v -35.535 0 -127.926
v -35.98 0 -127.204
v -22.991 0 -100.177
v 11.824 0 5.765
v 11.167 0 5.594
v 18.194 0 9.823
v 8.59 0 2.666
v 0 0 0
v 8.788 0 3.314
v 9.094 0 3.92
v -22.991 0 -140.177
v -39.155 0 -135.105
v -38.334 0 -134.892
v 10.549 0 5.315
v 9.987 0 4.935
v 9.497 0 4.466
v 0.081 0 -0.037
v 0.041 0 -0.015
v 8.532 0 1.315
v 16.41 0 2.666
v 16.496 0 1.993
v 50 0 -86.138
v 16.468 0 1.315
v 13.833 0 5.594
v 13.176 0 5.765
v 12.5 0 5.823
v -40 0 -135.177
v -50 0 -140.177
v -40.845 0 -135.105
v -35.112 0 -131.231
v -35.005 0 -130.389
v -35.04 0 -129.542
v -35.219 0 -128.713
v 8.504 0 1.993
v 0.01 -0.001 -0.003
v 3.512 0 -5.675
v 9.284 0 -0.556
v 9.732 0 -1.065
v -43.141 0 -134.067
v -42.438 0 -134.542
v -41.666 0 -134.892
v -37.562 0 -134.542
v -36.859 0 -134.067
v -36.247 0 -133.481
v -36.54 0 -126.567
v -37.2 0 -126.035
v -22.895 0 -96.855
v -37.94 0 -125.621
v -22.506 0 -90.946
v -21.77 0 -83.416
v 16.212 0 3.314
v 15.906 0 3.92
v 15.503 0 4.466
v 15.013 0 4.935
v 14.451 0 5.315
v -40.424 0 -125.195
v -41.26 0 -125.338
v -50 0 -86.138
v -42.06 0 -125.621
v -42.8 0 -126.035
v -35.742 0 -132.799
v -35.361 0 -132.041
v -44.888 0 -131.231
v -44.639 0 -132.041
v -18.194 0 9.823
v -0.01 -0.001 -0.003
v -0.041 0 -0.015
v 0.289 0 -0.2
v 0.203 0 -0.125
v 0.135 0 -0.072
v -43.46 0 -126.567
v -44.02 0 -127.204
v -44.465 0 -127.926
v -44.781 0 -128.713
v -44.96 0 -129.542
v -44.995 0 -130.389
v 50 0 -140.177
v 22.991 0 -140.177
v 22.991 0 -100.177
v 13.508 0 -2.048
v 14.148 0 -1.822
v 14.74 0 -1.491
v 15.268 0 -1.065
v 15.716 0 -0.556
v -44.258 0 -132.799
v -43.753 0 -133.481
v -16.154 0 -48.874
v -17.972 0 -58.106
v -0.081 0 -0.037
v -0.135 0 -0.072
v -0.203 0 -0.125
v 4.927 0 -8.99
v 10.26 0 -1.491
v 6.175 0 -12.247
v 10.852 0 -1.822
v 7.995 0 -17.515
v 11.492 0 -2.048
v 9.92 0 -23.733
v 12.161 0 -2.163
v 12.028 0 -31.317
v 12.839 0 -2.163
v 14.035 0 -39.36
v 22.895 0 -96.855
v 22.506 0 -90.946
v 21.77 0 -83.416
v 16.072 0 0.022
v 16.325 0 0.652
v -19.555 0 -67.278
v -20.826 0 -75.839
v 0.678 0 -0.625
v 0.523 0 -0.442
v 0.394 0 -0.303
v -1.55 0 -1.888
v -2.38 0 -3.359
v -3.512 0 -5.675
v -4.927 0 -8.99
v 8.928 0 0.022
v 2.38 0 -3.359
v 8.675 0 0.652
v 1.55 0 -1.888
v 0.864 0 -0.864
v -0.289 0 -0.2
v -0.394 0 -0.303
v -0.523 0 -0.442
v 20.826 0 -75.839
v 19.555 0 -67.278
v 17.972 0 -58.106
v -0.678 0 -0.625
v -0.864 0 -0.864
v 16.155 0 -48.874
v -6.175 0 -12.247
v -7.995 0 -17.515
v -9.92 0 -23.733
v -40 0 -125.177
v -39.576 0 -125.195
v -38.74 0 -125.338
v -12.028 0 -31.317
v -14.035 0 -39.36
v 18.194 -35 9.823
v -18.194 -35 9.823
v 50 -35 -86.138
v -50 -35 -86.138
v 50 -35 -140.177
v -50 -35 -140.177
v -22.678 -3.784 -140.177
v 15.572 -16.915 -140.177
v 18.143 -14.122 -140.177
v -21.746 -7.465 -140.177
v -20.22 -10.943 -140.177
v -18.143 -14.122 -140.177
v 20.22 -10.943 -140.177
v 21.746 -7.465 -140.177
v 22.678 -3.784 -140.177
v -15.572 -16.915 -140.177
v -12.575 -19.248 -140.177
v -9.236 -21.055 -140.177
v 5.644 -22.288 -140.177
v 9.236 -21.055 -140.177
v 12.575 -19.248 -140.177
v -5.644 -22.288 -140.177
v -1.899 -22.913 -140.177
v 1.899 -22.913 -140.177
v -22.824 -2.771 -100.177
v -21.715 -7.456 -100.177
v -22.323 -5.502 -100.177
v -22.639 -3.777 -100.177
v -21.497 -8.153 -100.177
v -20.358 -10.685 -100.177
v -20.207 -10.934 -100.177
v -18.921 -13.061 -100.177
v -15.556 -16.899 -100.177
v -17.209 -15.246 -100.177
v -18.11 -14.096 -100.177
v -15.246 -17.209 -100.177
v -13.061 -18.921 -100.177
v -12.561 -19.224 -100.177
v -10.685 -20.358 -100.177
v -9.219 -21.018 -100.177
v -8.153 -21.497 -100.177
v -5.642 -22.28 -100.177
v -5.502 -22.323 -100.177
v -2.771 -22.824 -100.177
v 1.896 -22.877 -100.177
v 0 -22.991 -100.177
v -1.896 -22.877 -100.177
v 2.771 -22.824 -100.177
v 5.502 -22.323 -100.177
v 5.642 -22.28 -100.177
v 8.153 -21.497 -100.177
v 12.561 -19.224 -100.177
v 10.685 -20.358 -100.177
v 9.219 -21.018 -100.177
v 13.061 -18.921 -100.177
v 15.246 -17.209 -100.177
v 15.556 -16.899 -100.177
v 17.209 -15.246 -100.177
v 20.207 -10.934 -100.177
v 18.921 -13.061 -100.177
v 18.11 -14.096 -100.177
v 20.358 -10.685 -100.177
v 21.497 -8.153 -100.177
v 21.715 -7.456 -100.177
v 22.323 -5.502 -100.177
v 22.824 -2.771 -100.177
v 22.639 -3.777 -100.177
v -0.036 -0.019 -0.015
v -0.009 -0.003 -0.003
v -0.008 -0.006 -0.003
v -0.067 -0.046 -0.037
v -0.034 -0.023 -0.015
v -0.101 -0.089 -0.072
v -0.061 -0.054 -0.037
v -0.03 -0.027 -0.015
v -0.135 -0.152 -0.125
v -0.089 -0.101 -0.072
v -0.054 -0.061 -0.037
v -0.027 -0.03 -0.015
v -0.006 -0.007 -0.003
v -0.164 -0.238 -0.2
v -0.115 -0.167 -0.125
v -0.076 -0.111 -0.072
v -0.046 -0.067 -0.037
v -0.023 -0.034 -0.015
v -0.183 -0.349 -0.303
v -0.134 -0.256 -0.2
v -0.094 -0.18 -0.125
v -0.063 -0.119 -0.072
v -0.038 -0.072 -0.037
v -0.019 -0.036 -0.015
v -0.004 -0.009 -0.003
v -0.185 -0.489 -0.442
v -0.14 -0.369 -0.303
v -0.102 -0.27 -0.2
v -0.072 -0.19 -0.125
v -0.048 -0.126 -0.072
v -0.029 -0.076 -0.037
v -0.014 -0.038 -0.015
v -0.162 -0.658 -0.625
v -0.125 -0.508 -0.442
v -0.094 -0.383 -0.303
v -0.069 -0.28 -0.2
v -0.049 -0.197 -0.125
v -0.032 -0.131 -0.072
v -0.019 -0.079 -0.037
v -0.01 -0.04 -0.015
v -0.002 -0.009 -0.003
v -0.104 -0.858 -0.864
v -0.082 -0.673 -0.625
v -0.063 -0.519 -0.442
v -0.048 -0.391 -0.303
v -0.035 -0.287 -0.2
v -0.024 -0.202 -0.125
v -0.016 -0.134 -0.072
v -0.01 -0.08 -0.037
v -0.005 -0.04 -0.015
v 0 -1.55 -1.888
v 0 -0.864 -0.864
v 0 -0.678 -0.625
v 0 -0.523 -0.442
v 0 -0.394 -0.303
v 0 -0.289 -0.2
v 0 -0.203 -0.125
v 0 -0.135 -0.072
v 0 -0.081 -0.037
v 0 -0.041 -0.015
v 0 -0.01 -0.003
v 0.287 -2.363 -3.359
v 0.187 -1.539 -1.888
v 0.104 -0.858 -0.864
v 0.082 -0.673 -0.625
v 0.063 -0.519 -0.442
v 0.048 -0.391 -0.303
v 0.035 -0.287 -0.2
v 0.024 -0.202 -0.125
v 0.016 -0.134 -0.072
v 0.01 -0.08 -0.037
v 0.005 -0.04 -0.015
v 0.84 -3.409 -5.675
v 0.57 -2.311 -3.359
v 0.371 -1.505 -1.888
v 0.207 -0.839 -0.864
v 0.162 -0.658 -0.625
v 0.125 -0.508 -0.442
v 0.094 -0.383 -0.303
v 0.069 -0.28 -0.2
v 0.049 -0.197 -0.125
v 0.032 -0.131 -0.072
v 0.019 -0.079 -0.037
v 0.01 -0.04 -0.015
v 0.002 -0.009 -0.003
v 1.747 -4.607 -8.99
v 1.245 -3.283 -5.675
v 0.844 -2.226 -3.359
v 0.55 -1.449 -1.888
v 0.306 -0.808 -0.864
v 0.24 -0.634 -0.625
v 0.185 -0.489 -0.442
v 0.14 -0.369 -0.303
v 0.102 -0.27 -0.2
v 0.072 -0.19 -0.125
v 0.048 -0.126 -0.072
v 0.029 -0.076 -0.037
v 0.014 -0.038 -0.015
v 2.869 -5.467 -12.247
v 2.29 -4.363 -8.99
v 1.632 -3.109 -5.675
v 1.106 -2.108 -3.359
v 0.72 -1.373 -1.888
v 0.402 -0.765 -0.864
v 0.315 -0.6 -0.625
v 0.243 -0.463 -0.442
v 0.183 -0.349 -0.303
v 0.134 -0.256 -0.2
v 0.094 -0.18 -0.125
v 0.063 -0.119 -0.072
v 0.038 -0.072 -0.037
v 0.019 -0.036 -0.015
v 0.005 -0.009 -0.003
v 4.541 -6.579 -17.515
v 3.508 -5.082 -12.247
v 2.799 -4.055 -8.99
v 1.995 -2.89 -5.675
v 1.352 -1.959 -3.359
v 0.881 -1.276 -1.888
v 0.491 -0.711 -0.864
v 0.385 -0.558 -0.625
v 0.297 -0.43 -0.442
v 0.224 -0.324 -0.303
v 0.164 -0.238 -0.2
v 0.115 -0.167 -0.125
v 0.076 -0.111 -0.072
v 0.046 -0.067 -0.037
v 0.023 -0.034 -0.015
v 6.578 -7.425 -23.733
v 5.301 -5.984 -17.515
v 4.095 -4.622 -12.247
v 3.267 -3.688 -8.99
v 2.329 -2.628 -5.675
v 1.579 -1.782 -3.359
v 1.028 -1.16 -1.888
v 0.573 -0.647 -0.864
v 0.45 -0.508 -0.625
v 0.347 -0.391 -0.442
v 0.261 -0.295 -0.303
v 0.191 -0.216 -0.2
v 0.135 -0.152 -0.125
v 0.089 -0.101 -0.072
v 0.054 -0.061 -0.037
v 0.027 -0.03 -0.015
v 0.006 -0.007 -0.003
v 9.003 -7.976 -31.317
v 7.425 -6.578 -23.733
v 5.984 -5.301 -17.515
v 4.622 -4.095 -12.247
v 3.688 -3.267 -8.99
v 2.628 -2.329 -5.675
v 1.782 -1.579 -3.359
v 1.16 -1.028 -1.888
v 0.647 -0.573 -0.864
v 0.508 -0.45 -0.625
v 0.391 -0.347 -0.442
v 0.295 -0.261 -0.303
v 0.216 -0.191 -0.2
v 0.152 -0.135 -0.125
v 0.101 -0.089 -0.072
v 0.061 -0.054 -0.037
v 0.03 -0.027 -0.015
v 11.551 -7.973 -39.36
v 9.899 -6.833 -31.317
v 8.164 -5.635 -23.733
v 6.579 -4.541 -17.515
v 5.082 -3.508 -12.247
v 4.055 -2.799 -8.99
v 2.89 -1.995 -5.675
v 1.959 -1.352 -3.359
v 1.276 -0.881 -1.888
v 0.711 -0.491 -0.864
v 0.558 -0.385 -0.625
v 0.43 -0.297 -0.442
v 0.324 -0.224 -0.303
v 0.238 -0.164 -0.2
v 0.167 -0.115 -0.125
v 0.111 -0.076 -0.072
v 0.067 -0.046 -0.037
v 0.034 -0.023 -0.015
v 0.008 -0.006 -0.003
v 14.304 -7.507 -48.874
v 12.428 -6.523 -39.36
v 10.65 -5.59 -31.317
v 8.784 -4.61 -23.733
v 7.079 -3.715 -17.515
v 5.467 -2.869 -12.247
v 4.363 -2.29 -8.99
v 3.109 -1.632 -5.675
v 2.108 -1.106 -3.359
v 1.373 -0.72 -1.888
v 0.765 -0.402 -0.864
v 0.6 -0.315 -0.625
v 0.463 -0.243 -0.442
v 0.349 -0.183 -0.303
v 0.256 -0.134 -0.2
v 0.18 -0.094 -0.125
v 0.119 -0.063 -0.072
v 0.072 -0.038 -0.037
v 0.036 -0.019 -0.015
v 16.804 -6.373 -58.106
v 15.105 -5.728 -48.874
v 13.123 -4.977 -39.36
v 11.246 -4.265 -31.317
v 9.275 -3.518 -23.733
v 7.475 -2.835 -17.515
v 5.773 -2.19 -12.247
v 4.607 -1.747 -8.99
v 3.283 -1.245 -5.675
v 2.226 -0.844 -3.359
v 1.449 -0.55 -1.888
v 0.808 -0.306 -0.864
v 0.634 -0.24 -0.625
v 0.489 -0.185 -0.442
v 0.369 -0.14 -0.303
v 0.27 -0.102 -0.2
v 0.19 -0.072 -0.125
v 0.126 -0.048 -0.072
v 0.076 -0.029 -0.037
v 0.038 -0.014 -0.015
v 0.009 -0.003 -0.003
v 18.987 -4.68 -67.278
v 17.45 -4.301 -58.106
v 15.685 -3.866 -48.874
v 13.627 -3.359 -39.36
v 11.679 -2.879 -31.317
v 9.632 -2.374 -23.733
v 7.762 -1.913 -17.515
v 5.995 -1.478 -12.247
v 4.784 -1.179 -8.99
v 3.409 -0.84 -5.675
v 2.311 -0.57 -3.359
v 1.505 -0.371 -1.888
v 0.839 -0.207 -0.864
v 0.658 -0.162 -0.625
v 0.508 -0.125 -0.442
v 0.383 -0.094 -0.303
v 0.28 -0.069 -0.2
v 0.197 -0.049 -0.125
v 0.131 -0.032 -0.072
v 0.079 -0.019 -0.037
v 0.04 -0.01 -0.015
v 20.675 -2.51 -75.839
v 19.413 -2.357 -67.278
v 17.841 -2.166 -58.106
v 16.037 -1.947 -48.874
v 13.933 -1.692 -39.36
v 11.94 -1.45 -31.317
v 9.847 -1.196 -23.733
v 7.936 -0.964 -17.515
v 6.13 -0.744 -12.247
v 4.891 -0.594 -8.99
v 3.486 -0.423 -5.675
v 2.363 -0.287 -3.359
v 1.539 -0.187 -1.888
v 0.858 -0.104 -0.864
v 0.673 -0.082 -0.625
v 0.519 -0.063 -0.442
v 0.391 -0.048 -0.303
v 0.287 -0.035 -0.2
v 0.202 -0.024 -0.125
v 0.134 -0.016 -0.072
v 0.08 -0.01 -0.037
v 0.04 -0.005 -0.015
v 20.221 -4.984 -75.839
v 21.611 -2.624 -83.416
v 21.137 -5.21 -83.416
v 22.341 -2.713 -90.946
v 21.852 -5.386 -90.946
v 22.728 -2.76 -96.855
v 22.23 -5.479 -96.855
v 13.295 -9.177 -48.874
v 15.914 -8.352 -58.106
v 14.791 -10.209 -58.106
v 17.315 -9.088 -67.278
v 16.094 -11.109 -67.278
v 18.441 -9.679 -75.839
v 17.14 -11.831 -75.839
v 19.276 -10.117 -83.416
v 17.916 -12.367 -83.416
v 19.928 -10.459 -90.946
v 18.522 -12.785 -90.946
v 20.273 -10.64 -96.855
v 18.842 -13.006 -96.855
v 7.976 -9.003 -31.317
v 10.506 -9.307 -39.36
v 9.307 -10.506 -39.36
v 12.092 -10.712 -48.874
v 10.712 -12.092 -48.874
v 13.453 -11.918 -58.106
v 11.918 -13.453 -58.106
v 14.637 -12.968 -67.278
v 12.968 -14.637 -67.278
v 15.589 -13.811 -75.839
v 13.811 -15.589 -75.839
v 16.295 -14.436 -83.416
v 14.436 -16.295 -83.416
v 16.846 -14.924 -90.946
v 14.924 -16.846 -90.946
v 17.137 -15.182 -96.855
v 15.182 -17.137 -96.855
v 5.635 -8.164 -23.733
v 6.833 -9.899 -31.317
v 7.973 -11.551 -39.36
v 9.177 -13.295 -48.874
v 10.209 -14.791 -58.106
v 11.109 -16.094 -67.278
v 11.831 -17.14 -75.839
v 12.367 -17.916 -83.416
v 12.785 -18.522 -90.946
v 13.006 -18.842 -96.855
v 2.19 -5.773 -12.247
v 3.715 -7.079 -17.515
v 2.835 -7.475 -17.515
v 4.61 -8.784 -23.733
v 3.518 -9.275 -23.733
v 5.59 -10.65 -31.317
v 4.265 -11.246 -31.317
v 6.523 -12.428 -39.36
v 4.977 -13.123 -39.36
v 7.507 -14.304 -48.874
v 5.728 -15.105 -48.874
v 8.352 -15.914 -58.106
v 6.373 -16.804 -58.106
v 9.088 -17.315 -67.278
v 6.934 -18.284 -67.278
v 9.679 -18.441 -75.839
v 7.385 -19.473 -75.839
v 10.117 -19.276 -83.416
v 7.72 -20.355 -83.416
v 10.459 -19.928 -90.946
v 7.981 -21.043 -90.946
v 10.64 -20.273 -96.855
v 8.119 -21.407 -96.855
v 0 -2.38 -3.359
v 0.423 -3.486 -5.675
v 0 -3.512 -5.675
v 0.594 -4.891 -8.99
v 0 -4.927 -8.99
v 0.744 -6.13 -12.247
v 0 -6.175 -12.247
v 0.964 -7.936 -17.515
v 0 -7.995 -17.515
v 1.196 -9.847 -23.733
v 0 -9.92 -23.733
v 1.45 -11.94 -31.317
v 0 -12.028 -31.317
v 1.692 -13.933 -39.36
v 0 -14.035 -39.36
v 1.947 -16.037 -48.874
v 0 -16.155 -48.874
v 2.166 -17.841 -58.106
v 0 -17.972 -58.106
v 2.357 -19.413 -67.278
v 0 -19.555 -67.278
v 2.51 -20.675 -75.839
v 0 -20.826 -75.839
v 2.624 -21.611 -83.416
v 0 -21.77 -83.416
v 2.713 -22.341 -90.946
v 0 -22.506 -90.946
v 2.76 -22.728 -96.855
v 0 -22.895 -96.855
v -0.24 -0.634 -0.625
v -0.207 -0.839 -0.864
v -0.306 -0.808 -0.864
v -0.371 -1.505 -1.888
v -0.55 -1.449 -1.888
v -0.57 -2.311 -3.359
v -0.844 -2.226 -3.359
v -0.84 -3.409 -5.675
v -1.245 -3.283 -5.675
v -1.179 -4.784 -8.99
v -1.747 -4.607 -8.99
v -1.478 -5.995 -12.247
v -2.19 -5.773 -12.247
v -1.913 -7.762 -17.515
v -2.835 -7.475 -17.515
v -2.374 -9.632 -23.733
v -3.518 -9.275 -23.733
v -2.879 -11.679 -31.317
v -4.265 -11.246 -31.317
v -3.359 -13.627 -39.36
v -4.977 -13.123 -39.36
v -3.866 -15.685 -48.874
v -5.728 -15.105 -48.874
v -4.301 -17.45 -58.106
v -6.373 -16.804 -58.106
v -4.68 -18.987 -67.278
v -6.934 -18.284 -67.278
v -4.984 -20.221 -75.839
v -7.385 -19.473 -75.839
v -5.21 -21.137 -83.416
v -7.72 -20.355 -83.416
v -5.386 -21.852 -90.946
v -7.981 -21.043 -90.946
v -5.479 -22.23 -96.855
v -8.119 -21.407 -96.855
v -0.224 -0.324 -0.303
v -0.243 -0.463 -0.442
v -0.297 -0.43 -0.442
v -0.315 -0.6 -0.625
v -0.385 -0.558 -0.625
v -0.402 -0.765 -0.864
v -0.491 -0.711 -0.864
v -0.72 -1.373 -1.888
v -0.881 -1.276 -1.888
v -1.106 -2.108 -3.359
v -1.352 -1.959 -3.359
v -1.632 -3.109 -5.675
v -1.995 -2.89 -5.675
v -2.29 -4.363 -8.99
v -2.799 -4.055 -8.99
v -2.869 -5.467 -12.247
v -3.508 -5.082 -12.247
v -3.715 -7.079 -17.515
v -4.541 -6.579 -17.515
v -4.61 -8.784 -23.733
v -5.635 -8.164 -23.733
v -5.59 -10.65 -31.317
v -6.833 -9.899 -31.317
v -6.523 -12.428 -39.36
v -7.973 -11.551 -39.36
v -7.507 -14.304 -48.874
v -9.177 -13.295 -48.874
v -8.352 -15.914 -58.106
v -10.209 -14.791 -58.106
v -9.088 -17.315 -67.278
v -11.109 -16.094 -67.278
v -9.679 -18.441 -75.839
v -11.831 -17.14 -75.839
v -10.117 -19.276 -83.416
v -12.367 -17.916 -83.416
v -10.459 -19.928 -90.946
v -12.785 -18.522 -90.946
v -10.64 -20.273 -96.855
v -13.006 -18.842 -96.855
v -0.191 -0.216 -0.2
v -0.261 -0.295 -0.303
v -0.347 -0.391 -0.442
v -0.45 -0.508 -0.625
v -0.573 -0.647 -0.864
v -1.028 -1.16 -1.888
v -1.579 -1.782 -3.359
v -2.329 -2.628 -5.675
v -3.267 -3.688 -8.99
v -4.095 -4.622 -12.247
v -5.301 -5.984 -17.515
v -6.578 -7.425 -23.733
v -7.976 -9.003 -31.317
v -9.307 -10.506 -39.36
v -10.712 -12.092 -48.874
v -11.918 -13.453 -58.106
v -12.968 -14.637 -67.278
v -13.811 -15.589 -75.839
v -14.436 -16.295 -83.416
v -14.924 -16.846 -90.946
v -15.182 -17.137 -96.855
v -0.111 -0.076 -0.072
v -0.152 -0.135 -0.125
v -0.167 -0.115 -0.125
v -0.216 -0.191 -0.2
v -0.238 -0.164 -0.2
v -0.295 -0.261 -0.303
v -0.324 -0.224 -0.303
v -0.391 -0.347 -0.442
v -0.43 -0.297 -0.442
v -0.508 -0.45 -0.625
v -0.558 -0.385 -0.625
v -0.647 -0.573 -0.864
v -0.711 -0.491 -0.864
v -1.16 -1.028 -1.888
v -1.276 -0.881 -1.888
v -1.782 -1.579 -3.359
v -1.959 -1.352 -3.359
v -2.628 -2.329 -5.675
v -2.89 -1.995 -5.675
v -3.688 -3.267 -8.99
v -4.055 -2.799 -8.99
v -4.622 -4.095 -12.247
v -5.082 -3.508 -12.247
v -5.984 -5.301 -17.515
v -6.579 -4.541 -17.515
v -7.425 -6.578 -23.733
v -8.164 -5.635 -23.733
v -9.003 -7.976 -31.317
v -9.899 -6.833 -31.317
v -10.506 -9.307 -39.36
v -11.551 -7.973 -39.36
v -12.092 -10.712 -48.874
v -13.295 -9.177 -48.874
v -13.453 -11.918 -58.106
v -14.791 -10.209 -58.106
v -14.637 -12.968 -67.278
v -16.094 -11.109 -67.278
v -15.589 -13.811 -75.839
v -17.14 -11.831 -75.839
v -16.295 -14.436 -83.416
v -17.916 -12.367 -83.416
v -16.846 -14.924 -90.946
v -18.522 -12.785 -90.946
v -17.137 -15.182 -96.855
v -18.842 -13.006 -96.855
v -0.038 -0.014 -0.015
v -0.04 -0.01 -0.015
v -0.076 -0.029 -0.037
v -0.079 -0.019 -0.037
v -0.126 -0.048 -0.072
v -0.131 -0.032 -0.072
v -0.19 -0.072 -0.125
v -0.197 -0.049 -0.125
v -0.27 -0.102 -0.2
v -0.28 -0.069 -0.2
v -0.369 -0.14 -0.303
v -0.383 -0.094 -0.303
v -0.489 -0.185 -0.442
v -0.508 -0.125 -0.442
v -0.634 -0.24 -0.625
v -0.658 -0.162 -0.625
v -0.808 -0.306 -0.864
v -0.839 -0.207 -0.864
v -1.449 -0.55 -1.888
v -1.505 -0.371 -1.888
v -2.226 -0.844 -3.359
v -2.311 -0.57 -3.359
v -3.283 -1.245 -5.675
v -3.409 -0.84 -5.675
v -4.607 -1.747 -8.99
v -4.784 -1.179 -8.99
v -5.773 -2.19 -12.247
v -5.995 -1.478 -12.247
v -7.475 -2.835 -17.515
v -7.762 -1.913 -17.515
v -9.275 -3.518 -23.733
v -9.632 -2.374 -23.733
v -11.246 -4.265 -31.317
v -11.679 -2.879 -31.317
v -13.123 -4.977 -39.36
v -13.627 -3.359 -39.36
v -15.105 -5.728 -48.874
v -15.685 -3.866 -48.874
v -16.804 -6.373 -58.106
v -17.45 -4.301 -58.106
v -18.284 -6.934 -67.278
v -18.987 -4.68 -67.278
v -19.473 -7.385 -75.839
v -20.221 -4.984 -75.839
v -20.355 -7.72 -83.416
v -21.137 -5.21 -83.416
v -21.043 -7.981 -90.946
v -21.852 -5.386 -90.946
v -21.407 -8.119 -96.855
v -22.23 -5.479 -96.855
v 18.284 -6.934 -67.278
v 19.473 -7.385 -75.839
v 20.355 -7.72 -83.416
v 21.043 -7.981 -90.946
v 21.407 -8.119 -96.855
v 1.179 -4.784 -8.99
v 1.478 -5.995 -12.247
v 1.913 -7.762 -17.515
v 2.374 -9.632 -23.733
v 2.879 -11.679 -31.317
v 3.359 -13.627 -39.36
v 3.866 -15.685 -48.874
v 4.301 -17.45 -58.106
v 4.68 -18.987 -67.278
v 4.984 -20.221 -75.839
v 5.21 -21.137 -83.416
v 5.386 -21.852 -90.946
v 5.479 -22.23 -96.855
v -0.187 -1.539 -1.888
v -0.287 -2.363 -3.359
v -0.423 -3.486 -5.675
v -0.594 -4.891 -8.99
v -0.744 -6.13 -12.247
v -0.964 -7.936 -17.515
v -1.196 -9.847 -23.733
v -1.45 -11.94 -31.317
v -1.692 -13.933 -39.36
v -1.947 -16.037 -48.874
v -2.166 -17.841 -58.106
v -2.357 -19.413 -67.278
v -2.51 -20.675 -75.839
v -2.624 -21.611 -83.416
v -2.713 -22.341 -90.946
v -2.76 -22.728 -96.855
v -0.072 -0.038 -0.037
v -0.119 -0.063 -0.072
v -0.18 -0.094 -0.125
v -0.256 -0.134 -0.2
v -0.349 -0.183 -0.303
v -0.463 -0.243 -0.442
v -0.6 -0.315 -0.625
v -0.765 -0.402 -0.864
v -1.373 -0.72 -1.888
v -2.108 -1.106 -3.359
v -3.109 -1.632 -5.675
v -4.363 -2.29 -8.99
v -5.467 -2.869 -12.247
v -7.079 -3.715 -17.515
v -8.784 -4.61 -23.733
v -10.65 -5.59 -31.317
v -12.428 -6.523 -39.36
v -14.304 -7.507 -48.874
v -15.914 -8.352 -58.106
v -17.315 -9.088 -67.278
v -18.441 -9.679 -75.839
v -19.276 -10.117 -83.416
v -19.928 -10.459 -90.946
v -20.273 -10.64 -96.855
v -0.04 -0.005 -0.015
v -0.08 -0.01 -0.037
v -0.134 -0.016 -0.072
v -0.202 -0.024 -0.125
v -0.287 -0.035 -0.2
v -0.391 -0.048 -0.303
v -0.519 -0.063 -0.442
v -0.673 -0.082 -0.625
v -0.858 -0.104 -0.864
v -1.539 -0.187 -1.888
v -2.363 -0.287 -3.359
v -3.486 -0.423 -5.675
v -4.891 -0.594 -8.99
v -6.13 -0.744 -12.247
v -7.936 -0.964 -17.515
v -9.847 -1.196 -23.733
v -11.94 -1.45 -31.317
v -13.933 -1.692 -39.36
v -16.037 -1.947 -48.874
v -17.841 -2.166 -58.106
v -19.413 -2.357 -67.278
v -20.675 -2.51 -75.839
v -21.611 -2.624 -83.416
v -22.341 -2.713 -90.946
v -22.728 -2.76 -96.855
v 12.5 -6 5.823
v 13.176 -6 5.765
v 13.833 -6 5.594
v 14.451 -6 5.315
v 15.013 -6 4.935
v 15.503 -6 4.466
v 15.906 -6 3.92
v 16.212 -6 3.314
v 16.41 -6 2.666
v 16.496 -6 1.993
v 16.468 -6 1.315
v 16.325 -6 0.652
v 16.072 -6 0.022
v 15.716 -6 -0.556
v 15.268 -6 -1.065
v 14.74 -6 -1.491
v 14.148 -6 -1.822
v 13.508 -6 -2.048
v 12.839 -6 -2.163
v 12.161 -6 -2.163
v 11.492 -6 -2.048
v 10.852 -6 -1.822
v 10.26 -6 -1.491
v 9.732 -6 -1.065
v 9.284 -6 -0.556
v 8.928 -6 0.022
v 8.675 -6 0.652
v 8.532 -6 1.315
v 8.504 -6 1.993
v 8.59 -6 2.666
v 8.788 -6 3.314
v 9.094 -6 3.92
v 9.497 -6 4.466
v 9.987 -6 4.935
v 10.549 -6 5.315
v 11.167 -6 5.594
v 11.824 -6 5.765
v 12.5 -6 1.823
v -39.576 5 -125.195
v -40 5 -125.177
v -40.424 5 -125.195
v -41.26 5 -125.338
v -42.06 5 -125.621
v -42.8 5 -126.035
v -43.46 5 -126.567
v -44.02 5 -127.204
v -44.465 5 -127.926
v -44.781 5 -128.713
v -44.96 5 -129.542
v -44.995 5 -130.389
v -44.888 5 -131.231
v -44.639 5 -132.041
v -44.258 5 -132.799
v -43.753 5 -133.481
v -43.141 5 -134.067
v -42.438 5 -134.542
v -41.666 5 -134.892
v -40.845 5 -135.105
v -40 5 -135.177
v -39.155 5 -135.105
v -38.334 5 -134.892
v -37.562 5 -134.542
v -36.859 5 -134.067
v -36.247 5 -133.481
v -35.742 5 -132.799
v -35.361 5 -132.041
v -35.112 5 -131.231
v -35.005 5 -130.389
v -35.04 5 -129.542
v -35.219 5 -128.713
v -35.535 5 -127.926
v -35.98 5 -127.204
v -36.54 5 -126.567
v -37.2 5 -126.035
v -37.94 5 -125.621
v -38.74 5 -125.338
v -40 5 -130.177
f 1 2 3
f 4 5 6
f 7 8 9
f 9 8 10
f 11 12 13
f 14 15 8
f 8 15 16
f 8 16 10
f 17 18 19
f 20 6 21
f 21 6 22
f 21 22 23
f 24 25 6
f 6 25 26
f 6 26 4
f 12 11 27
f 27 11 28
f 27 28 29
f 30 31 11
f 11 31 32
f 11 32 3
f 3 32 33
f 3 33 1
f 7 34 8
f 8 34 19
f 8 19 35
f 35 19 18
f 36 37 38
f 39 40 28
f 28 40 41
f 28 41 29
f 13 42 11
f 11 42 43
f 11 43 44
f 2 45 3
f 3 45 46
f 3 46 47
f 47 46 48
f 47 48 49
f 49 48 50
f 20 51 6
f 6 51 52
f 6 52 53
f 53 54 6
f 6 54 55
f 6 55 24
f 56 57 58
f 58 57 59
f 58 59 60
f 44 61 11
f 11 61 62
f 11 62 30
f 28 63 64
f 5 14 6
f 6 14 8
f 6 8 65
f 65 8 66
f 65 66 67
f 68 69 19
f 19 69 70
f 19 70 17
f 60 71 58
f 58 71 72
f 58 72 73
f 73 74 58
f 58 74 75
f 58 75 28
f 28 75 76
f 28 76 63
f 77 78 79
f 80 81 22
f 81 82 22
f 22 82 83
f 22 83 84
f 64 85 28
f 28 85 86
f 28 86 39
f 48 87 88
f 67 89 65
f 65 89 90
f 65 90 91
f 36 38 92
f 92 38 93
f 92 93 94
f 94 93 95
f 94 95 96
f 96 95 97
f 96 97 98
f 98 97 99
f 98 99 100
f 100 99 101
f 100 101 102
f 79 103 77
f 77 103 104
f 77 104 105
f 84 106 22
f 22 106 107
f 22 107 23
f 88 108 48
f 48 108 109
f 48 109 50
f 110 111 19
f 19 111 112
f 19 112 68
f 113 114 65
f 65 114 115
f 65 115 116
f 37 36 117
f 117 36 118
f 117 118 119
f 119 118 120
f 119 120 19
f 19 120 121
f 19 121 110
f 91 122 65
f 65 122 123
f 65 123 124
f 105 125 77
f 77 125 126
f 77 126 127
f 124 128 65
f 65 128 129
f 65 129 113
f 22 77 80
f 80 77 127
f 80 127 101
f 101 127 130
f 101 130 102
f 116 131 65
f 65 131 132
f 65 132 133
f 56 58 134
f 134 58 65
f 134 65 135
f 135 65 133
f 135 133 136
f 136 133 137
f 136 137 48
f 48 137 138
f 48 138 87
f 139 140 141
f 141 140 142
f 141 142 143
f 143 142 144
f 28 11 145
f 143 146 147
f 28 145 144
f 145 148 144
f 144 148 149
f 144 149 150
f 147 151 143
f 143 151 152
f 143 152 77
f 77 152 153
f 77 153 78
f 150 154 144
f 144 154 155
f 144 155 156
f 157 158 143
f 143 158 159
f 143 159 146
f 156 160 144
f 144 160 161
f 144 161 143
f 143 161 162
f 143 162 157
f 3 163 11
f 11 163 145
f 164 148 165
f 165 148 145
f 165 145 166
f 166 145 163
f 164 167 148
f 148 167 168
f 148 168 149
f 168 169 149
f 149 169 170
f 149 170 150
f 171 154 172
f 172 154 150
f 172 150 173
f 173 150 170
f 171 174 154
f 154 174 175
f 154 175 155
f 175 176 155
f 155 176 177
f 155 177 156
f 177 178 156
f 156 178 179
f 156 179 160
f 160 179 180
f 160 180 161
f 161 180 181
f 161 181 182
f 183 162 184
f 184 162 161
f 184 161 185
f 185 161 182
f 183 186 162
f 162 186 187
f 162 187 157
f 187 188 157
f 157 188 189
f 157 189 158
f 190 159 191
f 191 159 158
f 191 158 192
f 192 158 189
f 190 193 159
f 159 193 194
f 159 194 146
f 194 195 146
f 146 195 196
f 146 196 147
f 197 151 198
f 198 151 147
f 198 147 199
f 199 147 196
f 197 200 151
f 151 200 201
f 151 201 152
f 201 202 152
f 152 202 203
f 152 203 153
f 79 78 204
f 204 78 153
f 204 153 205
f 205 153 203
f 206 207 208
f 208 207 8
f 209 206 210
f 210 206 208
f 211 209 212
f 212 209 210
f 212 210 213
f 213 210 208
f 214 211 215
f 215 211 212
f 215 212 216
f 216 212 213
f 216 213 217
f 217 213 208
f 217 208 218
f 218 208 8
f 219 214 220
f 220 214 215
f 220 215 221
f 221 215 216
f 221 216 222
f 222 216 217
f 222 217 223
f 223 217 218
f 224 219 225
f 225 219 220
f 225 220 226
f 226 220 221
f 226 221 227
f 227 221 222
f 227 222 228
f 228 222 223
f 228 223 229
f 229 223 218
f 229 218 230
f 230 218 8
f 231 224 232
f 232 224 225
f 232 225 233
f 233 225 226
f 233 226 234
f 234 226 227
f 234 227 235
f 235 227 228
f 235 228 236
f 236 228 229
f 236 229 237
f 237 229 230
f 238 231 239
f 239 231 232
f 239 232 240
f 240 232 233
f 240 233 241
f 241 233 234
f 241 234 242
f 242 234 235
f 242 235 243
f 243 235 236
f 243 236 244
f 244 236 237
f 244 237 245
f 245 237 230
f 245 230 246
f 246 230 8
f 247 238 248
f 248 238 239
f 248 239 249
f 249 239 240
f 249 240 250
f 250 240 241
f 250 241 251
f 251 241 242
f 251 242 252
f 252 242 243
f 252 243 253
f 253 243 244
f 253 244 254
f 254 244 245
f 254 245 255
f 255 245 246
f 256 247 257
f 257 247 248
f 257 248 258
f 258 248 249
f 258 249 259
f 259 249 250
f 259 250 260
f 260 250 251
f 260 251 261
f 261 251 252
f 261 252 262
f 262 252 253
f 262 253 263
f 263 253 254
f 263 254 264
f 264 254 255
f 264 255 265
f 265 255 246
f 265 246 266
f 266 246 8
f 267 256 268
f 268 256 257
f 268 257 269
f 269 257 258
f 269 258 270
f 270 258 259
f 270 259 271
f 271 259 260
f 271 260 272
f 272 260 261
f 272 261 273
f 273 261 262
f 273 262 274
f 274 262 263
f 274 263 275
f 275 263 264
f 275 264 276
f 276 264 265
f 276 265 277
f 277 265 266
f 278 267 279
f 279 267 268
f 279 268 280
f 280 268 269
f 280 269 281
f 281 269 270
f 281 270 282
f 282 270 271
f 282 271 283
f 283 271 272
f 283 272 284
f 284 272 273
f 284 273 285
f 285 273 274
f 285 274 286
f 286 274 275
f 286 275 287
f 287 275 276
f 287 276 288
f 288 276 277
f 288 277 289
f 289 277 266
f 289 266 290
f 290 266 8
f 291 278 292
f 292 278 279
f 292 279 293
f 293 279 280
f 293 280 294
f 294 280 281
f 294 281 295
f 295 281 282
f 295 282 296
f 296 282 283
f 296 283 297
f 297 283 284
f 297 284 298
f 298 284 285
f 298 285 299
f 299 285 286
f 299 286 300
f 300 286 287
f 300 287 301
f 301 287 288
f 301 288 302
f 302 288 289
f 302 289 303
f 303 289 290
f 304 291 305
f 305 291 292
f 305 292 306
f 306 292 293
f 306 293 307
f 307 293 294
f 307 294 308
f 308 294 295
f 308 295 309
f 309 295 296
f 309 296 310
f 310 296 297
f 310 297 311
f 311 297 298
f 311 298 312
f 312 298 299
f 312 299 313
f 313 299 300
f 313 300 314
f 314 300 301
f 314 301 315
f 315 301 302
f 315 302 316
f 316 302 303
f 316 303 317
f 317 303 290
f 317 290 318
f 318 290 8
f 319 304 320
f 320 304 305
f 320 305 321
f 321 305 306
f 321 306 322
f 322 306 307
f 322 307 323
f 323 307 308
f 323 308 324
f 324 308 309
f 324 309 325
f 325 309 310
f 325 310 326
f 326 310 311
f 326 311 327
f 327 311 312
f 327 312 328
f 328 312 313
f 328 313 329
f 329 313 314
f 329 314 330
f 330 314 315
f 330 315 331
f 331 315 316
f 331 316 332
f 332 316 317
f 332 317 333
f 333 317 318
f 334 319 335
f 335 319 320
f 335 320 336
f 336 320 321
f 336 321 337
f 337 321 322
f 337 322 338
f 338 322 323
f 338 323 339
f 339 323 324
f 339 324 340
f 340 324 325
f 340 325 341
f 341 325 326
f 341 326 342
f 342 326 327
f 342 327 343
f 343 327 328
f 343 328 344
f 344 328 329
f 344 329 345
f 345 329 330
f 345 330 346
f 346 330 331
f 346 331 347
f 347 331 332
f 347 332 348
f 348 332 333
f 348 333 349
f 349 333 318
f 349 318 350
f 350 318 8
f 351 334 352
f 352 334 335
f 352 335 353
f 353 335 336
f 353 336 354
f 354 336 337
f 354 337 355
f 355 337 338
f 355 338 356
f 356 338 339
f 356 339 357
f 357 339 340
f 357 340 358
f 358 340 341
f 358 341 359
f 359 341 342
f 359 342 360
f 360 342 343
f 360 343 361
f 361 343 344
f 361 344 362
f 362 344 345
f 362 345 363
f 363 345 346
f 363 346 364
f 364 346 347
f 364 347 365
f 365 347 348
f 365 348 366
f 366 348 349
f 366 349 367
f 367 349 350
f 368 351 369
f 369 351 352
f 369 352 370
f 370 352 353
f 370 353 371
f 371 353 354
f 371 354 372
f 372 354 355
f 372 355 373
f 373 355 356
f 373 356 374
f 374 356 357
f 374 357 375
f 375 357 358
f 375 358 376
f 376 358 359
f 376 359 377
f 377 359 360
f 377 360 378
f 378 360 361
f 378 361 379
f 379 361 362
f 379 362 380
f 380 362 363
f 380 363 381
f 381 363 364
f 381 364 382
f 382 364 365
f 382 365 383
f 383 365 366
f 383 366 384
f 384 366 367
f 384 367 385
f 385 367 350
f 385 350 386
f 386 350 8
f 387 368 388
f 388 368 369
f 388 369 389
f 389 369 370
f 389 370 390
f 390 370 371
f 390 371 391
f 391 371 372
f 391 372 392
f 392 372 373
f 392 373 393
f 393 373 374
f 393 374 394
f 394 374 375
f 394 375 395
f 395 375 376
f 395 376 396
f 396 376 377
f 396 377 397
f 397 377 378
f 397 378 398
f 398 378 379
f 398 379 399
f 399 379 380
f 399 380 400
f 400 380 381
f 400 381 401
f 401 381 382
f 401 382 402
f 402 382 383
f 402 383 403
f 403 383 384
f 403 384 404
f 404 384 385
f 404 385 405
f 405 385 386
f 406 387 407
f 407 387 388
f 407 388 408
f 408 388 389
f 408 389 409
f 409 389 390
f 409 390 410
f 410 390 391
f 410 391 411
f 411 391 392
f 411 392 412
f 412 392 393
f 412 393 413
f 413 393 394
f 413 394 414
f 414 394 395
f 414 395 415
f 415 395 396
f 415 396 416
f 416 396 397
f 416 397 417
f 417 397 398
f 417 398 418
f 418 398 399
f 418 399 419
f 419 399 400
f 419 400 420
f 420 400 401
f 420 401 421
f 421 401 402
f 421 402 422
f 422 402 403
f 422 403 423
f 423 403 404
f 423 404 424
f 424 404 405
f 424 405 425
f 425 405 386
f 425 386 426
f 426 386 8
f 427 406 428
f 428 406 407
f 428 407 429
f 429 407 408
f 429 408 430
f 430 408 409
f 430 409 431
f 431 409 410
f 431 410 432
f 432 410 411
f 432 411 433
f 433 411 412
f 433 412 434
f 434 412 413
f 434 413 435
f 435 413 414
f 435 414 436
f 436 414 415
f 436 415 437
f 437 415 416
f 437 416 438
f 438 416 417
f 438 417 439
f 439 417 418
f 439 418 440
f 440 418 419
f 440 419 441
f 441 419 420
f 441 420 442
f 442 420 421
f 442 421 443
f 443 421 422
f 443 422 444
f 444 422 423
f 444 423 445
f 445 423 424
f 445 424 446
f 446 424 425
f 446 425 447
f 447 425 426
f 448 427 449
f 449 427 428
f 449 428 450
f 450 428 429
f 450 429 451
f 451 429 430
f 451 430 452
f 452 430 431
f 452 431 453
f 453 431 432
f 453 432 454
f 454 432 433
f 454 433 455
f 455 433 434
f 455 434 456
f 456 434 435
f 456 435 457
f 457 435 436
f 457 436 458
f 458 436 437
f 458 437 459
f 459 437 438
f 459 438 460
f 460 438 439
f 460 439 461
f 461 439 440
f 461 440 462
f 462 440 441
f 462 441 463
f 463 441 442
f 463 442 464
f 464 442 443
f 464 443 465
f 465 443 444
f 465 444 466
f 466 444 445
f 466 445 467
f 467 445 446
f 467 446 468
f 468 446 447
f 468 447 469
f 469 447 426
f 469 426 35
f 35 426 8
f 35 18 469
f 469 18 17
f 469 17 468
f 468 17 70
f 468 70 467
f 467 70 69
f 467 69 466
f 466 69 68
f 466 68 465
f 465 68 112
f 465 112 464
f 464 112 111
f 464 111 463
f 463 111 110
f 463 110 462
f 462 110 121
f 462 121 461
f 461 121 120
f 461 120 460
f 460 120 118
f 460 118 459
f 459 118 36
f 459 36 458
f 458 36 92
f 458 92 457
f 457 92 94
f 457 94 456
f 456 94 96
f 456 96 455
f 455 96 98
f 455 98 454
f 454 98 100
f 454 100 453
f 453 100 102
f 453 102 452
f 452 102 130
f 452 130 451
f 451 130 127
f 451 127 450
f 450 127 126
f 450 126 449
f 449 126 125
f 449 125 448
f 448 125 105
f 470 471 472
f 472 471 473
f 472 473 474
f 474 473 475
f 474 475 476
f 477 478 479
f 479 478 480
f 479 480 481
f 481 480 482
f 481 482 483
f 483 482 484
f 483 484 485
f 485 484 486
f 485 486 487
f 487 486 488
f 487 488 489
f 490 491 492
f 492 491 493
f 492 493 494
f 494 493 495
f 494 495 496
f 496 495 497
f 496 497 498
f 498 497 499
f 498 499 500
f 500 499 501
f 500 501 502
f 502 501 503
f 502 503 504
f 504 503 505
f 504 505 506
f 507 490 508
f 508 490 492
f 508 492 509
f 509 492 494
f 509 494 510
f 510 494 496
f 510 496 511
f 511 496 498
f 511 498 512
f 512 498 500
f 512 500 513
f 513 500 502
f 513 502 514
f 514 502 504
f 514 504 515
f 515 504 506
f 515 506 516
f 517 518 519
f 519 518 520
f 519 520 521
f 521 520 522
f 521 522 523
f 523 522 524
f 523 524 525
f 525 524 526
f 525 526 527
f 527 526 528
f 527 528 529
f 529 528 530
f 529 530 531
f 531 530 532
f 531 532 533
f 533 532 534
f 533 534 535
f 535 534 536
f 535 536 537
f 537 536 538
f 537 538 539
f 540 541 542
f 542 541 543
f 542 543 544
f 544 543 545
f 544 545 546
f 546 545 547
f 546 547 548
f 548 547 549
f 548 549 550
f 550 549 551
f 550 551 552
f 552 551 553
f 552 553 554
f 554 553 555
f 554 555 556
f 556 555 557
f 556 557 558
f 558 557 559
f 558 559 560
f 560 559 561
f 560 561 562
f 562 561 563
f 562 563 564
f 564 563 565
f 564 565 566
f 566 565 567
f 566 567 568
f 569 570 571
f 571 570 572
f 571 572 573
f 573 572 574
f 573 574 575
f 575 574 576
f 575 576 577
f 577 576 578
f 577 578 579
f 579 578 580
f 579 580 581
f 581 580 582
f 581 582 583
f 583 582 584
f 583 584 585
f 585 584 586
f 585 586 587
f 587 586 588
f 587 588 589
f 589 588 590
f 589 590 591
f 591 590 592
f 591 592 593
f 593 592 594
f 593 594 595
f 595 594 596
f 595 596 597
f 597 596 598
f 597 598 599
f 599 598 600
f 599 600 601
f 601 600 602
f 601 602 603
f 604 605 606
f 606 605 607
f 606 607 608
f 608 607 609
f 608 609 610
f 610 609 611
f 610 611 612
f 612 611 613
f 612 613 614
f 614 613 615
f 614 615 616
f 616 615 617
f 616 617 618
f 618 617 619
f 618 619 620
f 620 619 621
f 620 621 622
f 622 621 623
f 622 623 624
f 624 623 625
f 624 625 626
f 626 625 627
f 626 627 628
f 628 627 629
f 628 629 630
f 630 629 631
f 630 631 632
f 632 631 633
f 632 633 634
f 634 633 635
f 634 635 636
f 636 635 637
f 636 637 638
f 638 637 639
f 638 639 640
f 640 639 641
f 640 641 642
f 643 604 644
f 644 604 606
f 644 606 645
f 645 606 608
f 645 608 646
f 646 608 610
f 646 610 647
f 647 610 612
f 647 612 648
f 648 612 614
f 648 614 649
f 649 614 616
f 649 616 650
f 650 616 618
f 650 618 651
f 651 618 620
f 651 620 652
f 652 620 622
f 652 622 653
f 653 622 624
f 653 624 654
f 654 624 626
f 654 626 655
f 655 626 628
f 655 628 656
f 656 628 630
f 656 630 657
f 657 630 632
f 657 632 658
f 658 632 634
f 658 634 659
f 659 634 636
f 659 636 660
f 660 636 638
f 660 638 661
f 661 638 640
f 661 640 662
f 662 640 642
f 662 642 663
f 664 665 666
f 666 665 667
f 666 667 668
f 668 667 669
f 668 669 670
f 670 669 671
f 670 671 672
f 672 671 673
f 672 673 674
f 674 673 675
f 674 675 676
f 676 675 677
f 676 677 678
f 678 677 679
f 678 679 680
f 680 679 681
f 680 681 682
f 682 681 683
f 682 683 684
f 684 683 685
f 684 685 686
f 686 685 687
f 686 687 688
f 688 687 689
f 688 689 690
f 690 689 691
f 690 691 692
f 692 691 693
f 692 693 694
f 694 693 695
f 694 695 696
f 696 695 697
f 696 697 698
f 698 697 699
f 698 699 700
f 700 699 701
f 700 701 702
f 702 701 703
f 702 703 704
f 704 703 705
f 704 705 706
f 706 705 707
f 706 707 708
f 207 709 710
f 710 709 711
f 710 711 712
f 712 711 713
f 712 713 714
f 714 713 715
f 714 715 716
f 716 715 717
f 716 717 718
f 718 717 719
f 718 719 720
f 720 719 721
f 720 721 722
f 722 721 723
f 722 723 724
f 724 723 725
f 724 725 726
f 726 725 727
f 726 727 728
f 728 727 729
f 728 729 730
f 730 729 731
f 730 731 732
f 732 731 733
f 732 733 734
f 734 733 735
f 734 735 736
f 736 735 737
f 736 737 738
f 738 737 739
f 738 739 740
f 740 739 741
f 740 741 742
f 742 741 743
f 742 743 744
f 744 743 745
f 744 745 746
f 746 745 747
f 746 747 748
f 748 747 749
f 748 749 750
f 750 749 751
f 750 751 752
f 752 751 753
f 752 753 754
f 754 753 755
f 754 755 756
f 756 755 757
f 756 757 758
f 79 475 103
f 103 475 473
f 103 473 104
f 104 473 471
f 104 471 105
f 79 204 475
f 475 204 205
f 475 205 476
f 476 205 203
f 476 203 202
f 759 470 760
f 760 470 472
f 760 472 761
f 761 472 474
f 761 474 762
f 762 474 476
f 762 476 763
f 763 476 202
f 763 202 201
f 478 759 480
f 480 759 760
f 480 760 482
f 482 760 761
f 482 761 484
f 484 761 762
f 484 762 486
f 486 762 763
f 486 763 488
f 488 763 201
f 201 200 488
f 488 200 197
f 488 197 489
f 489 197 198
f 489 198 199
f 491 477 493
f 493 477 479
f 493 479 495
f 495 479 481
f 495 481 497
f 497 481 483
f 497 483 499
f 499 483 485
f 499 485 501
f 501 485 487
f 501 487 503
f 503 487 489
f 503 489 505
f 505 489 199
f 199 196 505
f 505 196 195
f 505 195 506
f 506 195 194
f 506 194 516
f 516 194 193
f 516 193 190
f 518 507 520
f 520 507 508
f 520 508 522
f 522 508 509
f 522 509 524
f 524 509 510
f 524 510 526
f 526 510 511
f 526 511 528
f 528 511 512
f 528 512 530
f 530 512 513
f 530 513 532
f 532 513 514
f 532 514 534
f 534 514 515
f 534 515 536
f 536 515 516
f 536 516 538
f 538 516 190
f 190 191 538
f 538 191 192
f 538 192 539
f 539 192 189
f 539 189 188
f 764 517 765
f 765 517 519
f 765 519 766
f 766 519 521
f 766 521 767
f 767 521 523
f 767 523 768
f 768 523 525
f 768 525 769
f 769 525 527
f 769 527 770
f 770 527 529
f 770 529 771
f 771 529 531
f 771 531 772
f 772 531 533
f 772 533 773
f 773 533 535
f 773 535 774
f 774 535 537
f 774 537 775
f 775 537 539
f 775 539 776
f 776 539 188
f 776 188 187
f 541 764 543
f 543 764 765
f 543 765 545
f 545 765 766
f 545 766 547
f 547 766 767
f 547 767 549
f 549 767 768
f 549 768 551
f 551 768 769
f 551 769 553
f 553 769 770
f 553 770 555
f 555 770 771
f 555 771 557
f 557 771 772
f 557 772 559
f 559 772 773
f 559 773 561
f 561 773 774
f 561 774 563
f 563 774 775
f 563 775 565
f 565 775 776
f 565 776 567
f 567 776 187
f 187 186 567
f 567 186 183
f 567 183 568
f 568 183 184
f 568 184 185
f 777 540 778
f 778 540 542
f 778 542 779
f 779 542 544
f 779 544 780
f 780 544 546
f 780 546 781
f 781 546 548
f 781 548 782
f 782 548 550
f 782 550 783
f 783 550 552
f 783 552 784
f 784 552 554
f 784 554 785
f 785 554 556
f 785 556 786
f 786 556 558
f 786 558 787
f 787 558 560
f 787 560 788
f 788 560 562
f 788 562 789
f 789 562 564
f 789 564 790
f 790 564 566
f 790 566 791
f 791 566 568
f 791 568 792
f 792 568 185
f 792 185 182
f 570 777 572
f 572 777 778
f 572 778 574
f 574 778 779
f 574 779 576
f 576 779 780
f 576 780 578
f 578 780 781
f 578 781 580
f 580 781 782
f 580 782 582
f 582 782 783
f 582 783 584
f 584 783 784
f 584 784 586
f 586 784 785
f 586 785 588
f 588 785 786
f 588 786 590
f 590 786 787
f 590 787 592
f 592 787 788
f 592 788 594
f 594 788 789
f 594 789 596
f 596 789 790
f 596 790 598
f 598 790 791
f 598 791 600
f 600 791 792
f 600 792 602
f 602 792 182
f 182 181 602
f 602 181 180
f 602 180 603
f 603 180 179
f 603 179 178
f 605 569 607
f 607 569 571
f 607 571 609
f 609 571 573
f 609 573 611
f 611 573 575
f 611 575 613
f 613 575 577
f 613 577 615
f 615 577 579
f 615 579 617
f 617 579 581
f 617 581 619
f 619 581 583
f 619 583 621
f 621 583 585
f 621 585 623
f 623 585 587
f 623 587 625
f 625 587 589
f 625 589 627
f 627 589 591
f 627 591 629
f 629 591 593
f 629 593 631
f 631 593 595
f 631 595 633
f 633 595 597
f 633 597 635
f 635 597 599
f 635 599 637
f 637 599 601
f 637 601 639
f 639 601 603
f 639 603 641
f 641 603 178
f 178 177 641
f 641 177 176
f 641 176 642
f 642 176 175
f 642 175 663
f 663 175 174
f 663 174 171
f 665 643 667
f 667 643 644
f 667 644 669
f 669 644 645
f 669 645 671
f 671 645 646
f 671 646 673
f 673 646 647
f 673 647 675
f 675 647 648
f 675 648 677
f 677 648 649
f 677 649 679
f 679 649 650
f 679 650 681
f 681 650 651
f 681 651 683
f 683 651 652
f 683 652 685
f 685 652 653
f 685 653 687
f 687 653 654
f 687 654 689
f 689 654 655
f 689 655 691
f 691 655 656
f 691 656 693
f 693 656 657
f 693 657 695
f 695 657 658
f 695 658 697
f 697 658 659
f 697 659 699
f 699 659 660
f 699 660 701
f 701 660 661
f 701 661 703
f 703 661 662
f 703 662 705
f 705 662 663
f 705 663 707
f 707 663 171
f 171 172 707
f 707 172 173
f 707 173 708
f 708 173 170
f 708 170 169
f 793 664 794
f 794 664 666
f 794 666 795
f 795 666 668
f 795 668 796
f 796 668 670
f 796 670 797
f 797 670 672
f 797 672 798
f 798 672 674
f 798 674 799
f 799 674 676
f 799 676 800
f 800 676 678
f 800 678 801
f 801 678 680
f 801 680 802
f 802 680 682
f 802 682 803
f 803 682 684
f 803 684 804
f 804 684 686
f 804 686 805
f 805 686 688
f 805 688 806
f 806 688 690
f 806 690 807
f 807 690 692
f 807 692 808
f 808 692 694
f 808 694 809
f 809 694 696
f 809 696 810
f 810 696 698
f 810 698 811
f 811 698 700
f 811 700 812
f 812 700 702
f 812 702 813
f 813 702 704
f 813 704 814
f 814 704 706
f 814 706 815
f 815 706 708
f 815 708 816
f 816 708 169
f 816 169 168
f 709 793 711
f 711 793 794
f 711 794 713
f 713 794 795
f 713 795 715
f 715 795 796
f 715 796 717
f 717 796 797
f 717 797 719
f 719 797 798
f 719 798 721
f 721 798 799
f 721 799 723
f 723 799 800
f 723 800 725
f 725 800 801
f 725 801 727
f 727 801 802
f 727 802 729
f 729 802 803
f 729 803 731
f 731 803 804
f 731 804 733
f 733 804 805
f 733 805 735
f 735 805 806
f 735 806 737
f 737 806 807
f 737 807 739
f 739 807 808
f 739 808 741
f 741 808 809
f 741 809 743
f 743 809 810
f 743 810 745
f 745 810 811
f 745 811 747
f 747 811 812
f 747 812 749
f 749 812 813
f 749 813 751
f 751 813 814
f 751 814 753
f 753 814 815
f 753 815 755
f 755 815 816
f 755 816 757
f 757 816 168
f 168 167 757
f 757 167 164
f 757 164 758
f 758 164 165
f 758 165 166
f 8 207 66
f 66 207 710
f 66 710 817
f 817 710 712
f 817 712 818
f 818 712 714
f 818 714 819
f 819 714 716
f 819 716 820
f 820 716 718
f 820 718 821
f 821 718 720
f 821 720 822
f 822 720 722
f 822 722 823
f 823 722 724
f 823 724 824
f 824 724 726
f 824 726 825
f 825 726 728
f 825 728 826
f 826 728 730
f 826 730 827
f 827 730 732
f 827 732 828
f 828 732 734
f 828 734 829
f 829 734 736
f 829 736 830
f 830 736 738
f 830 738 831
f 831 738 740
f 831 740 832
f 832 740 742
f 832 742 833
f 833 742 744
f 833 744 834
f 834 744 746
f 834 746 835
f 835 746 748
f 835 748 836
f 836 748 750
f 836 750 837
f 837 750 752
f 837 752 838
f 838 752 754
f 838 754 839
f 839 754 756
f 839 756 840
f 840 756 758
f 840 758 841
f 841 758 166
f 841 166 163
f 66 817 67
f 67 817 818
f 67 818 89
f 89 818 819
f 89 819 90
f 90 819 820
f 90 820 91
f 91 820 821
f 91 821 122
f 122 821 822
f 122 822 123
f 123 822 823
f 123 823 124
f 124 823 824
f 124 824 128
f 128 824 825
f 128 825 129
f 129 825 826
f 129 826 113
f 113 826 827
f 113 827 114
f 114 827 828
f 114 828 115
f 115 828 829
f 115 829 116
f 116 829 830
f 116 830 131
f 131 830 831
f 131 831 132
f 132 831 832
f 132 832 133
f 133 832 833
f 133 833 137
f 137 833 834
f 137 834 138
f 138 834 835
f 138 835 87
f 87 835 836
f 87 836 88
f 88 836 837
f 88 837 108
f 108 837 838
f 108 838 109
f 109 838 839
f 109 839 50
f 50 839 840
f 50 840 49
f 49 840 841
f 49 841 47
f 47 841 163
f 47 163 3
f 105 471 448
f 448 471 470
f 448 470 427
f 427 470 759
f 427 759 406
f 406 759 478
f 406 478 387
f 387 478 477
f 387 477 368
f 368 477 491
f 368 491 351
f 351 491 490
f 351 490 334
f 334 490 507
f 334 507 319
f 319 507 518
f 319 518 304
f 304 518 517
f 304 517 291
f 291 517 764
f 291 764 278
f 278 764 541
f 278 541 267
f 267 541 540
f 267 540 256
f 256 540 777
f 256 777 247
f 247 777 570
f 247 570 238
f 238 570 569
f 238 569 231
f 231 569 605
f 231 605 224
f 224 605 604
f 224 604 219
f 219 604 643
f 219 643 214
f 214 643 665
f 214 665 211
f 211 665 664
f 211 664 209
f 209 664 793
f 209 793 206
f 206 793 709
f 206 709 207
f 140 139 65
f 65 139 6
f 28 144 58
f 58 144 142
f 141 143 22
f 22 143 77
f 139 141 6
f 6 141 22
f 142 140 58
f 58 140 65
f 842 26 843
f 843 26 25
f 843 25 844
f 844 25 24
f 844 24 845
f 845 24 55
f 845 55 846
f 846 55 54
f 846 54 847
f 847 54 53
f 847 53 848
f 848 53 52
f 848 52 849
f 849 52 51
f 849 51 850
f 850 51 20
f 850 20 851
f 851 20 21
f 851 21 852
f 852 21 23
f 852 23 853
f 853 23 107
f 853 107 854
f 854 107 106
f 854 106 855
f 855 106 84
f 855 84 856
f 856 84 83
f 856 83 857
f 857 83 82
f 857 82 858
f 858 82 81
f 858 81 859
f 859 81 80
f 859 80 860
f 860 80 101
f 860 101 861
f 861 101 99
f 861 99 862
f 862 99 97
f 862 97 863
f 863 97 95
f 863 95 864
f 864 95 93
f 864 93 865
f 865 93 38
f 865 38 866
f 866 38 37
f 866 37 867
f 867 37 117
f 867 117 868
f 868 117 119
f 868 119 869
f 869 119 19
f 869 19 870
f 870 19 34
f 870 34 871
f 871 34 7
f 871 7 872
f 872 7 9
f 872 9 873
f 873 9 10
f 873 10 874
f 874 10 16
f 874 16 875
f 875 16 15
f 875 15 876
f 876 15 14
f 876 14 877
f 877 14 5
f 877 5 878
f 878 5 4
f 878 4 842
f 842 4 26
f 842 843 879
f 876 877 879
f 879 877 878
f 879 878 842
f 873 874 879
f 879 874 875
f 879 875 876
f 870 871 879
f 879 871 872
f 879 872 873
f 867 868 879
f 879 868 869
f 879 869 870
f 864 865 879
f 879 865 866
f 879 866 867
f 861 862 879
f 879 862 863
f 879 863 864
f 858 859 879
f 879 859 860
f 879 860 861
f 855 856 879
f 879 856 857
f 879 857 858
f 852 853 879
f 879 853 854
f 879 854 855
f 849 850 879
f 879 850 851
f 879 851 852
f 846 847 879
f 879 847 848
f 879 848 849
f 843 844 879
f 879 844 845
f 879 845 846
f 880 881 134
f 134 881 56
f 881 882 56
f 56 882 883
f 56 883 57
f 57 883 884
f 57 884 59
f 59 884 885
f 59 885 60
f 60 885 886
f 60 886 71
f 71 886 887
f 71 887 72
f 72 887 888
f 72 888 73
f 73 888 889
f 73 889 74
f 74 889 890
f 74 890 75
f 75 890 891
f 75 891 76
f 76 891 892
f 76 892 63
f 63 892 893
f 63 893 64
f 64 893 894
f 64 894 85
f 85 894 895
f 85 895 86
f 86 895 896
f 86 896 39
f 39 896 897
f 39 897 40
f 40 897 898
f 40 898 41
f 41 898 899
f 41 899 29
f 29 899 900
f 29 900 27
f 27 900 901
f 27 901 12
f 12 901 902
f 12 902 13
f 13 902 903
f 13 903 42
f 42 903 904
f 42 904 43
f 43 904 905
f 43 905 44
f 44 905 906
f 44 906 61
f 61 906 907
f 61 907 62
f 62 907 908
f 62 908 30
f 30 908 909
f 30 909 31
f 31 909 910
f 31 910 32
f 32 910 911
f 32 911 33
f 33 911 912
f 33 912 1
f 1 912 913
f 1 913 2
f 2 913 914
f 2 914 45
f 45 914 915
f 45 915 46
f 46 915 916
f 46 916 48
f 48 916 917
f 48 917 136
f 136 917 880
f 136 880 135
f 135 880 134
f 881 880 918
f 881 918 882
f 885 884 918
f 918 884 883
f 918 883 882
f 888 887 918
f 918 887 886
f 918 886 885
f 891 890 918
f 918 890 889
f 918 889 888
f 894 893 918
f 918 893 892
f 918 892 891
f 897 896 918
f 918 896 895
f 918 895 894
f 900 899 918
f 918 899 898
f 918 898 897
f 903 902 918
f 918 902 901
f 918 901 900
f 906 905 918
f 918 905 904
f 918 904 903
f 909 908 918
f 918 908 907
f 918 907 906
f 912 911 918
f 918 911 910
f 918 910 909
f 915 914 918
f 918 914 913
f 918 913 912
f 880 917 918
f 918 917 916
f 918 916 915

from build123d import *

# Parameters (mm, degrees)
SKETCH2_W            = 150
SKETCH2_H            = 70
BOSS_EXTRUDE1_DEPTH  = 50
INTERSECT1_OUTLINE_W = 100
INTERSECT1_OUTLINE_H = 150
INTERSECT1_DEPTH     = 35
CUT_EXTRUDE1_DEPTH   = 153.887652053
SKETCH4_R            = 4
CUT_EXTRUDE3_DEPTH   = 6
SKETCH8_R            = 5
BOSS_EXTRUDE3_DEPTH  = 5


# Read off the part's stored shape, not the designer's step: Intersect1
with BuildPart() as part:
    # Sketch2 → Boss-Extrude1 (new, symmetric)
    with BuildSketch(Plane(origin=(0, 0, 0), x_dir=(0, 0, -1), z_dir=(1, 0, 0))):
        with Locations((65.177152604, 0)):
            Rectangle(SKETCH2_W, SKETCH2_H)
    extrude(amount=BOSS_EXTRUDE1_DEPTH, both=True)

    # Sketch1 → Cut-Revolve1 (revolve, cut)
    with BuildSketch(Plane(origin=(0, 0, 0), x_dir=(0, 0, -1), z_dir=(1, 0, 0)), mode=Mode.PRIVATE) as cut_revolve1_sk:
        with BuildLine():
            Line((140.177152604, 22.991315667), (100.177152604, 22.991315667))
            add(Edge.make_bspline(
                [(0, 0), (0.003001049, 0.012379499), (0.011197692, 0.036351162), (0.030910939, 0.072587893), (0.061826137, 0.121023529), (0.108056169, 0.183557631), (0.181890949, 0.271568579), (0.306591117, 0.401983994), (0.524430354, 0.601235581), (0.901337009, 0.902060291), (1.552737658, 1.35492318), (2.678502901, 2.03469009), (4.445764918, 2.96045388), (7.403328149, 4.31706154), (11.599431889, 5.985386832), (16.823063538, 7.814259146), (22.879973582, 9.705127394), (29.12300565, 11.472646372), (35.403551613, 13.101460315), (41.714266155, 14.60858848), (48.050573205, 16.004129586), (54.409190393, 17.293961353), (60.787889899, 18.480587367), (67.185029056, 19.563313869), (73.599488728, 20.538609835), (80.030497438, 21.398160754), (86.47762614, 22.128684831), (91.82278076, 22.603702016), (96.058091382, 22.875635683), (98.677996749, 22.971409991), (99.677383084, 22.991315667), (100.177152604, 22.991315667)],
                knots=[0, 0, 0, 0, 0, 0.000489987, 0.000979974, 0.001581787, 0.002219798, 0.003488078, 0.005411983, 0.008540376, 0.013605957, 0.022087023, 0.03601085, 0.059264391, 0.090564505, 0.147620712, 0.210220905, 0.272821133, 0.335421343, 0.398021557, 0.460621765, 0.523221981, 0.585822195, 0.648422407, 0.711022626, 0.773622837, 0.836223055, 0.89882327, 0.961423485, 0.980711742, 1, 1, 1, 1, 1], degree=4))
            Line((0, 0), (140.177152604, 0))
            Line((140.177152604, 0), (140.177152604, 22.991315667))
        make_face()
    revolve(cut_revolve1_sk.sketch.rotate(Axis((0, 0, 0), (0, 0, -1)), 90), axis=Axis((0, 0, 0), (0, 0, -1)), mode=Mode.SUBTRACT)

    # Intersect1 outline → Intersect1 (cut)
    with BuildSketch(Plane(origin=(0, 0, 0), x_dir=(1, 0, 0), z_dir=(0, 1, 0))):
        with Locations((0, 65.177152604)):
            Rectangle(INTERSECT1_OUTLINE_W, INTERSECT1_OUTLINE_H)
    extrude(amount=INTERSECT1_DEPTH, mode=Mode.SUBTRACT)

    # Sketch5 → Cut-Extrude1 (cut, through all)
    with BuildSketch(Plane(origin=(0, 0, 0), x_dir=(1, 0, 0), z_dir=(0, 1, 0))):
        Polygon((50, 86.137976919), (18.194421541, -9.822847396), (0, -21.198201401), (-18.194421541, -9.822847396), (-50, 86.137976919), (-75.365394844, 84.804131947), (-88.729692443, -46.913449713), (-13.099565549, -40.658440604), (76.90354762, -33.214709966), (74.65964276, 87.590776178), align=None)
    extrude(amount=-CUT_EXTRUDE1_DEPTH, mode=Mode.SUBTRACT)

    # Sketch4 → Cut-Extrude3 (cut)
    with BuildSketch(Plane(origin=(0, 0, 0), x_dir=(1, 0, 0), z_dir=(0, 1, 0))):
        with Locations(Location((12.5, -1.822847396, 0), (0, 0, 270))):
            Circle(SKETCH4_R)
    extrude(amount=-CUT_EXTRUDE3_DEPTH, mode=Mode.SUBTRACT)

    # Sketch8 → Boss-Extrude3 (add)
    with BuildSketch(Plane(origin=(0, 0, 0), x_dir=(1, 0, 0), z_dir=(0, 1, 0))):
        with Locations(Location((-40, 130.177152604, 0), (0, 0, 270))):
            Circle(SKETCH8_R)
    extrude(amount=BOSS_EXTRUDE3_DEPTH)


solid = part.part
